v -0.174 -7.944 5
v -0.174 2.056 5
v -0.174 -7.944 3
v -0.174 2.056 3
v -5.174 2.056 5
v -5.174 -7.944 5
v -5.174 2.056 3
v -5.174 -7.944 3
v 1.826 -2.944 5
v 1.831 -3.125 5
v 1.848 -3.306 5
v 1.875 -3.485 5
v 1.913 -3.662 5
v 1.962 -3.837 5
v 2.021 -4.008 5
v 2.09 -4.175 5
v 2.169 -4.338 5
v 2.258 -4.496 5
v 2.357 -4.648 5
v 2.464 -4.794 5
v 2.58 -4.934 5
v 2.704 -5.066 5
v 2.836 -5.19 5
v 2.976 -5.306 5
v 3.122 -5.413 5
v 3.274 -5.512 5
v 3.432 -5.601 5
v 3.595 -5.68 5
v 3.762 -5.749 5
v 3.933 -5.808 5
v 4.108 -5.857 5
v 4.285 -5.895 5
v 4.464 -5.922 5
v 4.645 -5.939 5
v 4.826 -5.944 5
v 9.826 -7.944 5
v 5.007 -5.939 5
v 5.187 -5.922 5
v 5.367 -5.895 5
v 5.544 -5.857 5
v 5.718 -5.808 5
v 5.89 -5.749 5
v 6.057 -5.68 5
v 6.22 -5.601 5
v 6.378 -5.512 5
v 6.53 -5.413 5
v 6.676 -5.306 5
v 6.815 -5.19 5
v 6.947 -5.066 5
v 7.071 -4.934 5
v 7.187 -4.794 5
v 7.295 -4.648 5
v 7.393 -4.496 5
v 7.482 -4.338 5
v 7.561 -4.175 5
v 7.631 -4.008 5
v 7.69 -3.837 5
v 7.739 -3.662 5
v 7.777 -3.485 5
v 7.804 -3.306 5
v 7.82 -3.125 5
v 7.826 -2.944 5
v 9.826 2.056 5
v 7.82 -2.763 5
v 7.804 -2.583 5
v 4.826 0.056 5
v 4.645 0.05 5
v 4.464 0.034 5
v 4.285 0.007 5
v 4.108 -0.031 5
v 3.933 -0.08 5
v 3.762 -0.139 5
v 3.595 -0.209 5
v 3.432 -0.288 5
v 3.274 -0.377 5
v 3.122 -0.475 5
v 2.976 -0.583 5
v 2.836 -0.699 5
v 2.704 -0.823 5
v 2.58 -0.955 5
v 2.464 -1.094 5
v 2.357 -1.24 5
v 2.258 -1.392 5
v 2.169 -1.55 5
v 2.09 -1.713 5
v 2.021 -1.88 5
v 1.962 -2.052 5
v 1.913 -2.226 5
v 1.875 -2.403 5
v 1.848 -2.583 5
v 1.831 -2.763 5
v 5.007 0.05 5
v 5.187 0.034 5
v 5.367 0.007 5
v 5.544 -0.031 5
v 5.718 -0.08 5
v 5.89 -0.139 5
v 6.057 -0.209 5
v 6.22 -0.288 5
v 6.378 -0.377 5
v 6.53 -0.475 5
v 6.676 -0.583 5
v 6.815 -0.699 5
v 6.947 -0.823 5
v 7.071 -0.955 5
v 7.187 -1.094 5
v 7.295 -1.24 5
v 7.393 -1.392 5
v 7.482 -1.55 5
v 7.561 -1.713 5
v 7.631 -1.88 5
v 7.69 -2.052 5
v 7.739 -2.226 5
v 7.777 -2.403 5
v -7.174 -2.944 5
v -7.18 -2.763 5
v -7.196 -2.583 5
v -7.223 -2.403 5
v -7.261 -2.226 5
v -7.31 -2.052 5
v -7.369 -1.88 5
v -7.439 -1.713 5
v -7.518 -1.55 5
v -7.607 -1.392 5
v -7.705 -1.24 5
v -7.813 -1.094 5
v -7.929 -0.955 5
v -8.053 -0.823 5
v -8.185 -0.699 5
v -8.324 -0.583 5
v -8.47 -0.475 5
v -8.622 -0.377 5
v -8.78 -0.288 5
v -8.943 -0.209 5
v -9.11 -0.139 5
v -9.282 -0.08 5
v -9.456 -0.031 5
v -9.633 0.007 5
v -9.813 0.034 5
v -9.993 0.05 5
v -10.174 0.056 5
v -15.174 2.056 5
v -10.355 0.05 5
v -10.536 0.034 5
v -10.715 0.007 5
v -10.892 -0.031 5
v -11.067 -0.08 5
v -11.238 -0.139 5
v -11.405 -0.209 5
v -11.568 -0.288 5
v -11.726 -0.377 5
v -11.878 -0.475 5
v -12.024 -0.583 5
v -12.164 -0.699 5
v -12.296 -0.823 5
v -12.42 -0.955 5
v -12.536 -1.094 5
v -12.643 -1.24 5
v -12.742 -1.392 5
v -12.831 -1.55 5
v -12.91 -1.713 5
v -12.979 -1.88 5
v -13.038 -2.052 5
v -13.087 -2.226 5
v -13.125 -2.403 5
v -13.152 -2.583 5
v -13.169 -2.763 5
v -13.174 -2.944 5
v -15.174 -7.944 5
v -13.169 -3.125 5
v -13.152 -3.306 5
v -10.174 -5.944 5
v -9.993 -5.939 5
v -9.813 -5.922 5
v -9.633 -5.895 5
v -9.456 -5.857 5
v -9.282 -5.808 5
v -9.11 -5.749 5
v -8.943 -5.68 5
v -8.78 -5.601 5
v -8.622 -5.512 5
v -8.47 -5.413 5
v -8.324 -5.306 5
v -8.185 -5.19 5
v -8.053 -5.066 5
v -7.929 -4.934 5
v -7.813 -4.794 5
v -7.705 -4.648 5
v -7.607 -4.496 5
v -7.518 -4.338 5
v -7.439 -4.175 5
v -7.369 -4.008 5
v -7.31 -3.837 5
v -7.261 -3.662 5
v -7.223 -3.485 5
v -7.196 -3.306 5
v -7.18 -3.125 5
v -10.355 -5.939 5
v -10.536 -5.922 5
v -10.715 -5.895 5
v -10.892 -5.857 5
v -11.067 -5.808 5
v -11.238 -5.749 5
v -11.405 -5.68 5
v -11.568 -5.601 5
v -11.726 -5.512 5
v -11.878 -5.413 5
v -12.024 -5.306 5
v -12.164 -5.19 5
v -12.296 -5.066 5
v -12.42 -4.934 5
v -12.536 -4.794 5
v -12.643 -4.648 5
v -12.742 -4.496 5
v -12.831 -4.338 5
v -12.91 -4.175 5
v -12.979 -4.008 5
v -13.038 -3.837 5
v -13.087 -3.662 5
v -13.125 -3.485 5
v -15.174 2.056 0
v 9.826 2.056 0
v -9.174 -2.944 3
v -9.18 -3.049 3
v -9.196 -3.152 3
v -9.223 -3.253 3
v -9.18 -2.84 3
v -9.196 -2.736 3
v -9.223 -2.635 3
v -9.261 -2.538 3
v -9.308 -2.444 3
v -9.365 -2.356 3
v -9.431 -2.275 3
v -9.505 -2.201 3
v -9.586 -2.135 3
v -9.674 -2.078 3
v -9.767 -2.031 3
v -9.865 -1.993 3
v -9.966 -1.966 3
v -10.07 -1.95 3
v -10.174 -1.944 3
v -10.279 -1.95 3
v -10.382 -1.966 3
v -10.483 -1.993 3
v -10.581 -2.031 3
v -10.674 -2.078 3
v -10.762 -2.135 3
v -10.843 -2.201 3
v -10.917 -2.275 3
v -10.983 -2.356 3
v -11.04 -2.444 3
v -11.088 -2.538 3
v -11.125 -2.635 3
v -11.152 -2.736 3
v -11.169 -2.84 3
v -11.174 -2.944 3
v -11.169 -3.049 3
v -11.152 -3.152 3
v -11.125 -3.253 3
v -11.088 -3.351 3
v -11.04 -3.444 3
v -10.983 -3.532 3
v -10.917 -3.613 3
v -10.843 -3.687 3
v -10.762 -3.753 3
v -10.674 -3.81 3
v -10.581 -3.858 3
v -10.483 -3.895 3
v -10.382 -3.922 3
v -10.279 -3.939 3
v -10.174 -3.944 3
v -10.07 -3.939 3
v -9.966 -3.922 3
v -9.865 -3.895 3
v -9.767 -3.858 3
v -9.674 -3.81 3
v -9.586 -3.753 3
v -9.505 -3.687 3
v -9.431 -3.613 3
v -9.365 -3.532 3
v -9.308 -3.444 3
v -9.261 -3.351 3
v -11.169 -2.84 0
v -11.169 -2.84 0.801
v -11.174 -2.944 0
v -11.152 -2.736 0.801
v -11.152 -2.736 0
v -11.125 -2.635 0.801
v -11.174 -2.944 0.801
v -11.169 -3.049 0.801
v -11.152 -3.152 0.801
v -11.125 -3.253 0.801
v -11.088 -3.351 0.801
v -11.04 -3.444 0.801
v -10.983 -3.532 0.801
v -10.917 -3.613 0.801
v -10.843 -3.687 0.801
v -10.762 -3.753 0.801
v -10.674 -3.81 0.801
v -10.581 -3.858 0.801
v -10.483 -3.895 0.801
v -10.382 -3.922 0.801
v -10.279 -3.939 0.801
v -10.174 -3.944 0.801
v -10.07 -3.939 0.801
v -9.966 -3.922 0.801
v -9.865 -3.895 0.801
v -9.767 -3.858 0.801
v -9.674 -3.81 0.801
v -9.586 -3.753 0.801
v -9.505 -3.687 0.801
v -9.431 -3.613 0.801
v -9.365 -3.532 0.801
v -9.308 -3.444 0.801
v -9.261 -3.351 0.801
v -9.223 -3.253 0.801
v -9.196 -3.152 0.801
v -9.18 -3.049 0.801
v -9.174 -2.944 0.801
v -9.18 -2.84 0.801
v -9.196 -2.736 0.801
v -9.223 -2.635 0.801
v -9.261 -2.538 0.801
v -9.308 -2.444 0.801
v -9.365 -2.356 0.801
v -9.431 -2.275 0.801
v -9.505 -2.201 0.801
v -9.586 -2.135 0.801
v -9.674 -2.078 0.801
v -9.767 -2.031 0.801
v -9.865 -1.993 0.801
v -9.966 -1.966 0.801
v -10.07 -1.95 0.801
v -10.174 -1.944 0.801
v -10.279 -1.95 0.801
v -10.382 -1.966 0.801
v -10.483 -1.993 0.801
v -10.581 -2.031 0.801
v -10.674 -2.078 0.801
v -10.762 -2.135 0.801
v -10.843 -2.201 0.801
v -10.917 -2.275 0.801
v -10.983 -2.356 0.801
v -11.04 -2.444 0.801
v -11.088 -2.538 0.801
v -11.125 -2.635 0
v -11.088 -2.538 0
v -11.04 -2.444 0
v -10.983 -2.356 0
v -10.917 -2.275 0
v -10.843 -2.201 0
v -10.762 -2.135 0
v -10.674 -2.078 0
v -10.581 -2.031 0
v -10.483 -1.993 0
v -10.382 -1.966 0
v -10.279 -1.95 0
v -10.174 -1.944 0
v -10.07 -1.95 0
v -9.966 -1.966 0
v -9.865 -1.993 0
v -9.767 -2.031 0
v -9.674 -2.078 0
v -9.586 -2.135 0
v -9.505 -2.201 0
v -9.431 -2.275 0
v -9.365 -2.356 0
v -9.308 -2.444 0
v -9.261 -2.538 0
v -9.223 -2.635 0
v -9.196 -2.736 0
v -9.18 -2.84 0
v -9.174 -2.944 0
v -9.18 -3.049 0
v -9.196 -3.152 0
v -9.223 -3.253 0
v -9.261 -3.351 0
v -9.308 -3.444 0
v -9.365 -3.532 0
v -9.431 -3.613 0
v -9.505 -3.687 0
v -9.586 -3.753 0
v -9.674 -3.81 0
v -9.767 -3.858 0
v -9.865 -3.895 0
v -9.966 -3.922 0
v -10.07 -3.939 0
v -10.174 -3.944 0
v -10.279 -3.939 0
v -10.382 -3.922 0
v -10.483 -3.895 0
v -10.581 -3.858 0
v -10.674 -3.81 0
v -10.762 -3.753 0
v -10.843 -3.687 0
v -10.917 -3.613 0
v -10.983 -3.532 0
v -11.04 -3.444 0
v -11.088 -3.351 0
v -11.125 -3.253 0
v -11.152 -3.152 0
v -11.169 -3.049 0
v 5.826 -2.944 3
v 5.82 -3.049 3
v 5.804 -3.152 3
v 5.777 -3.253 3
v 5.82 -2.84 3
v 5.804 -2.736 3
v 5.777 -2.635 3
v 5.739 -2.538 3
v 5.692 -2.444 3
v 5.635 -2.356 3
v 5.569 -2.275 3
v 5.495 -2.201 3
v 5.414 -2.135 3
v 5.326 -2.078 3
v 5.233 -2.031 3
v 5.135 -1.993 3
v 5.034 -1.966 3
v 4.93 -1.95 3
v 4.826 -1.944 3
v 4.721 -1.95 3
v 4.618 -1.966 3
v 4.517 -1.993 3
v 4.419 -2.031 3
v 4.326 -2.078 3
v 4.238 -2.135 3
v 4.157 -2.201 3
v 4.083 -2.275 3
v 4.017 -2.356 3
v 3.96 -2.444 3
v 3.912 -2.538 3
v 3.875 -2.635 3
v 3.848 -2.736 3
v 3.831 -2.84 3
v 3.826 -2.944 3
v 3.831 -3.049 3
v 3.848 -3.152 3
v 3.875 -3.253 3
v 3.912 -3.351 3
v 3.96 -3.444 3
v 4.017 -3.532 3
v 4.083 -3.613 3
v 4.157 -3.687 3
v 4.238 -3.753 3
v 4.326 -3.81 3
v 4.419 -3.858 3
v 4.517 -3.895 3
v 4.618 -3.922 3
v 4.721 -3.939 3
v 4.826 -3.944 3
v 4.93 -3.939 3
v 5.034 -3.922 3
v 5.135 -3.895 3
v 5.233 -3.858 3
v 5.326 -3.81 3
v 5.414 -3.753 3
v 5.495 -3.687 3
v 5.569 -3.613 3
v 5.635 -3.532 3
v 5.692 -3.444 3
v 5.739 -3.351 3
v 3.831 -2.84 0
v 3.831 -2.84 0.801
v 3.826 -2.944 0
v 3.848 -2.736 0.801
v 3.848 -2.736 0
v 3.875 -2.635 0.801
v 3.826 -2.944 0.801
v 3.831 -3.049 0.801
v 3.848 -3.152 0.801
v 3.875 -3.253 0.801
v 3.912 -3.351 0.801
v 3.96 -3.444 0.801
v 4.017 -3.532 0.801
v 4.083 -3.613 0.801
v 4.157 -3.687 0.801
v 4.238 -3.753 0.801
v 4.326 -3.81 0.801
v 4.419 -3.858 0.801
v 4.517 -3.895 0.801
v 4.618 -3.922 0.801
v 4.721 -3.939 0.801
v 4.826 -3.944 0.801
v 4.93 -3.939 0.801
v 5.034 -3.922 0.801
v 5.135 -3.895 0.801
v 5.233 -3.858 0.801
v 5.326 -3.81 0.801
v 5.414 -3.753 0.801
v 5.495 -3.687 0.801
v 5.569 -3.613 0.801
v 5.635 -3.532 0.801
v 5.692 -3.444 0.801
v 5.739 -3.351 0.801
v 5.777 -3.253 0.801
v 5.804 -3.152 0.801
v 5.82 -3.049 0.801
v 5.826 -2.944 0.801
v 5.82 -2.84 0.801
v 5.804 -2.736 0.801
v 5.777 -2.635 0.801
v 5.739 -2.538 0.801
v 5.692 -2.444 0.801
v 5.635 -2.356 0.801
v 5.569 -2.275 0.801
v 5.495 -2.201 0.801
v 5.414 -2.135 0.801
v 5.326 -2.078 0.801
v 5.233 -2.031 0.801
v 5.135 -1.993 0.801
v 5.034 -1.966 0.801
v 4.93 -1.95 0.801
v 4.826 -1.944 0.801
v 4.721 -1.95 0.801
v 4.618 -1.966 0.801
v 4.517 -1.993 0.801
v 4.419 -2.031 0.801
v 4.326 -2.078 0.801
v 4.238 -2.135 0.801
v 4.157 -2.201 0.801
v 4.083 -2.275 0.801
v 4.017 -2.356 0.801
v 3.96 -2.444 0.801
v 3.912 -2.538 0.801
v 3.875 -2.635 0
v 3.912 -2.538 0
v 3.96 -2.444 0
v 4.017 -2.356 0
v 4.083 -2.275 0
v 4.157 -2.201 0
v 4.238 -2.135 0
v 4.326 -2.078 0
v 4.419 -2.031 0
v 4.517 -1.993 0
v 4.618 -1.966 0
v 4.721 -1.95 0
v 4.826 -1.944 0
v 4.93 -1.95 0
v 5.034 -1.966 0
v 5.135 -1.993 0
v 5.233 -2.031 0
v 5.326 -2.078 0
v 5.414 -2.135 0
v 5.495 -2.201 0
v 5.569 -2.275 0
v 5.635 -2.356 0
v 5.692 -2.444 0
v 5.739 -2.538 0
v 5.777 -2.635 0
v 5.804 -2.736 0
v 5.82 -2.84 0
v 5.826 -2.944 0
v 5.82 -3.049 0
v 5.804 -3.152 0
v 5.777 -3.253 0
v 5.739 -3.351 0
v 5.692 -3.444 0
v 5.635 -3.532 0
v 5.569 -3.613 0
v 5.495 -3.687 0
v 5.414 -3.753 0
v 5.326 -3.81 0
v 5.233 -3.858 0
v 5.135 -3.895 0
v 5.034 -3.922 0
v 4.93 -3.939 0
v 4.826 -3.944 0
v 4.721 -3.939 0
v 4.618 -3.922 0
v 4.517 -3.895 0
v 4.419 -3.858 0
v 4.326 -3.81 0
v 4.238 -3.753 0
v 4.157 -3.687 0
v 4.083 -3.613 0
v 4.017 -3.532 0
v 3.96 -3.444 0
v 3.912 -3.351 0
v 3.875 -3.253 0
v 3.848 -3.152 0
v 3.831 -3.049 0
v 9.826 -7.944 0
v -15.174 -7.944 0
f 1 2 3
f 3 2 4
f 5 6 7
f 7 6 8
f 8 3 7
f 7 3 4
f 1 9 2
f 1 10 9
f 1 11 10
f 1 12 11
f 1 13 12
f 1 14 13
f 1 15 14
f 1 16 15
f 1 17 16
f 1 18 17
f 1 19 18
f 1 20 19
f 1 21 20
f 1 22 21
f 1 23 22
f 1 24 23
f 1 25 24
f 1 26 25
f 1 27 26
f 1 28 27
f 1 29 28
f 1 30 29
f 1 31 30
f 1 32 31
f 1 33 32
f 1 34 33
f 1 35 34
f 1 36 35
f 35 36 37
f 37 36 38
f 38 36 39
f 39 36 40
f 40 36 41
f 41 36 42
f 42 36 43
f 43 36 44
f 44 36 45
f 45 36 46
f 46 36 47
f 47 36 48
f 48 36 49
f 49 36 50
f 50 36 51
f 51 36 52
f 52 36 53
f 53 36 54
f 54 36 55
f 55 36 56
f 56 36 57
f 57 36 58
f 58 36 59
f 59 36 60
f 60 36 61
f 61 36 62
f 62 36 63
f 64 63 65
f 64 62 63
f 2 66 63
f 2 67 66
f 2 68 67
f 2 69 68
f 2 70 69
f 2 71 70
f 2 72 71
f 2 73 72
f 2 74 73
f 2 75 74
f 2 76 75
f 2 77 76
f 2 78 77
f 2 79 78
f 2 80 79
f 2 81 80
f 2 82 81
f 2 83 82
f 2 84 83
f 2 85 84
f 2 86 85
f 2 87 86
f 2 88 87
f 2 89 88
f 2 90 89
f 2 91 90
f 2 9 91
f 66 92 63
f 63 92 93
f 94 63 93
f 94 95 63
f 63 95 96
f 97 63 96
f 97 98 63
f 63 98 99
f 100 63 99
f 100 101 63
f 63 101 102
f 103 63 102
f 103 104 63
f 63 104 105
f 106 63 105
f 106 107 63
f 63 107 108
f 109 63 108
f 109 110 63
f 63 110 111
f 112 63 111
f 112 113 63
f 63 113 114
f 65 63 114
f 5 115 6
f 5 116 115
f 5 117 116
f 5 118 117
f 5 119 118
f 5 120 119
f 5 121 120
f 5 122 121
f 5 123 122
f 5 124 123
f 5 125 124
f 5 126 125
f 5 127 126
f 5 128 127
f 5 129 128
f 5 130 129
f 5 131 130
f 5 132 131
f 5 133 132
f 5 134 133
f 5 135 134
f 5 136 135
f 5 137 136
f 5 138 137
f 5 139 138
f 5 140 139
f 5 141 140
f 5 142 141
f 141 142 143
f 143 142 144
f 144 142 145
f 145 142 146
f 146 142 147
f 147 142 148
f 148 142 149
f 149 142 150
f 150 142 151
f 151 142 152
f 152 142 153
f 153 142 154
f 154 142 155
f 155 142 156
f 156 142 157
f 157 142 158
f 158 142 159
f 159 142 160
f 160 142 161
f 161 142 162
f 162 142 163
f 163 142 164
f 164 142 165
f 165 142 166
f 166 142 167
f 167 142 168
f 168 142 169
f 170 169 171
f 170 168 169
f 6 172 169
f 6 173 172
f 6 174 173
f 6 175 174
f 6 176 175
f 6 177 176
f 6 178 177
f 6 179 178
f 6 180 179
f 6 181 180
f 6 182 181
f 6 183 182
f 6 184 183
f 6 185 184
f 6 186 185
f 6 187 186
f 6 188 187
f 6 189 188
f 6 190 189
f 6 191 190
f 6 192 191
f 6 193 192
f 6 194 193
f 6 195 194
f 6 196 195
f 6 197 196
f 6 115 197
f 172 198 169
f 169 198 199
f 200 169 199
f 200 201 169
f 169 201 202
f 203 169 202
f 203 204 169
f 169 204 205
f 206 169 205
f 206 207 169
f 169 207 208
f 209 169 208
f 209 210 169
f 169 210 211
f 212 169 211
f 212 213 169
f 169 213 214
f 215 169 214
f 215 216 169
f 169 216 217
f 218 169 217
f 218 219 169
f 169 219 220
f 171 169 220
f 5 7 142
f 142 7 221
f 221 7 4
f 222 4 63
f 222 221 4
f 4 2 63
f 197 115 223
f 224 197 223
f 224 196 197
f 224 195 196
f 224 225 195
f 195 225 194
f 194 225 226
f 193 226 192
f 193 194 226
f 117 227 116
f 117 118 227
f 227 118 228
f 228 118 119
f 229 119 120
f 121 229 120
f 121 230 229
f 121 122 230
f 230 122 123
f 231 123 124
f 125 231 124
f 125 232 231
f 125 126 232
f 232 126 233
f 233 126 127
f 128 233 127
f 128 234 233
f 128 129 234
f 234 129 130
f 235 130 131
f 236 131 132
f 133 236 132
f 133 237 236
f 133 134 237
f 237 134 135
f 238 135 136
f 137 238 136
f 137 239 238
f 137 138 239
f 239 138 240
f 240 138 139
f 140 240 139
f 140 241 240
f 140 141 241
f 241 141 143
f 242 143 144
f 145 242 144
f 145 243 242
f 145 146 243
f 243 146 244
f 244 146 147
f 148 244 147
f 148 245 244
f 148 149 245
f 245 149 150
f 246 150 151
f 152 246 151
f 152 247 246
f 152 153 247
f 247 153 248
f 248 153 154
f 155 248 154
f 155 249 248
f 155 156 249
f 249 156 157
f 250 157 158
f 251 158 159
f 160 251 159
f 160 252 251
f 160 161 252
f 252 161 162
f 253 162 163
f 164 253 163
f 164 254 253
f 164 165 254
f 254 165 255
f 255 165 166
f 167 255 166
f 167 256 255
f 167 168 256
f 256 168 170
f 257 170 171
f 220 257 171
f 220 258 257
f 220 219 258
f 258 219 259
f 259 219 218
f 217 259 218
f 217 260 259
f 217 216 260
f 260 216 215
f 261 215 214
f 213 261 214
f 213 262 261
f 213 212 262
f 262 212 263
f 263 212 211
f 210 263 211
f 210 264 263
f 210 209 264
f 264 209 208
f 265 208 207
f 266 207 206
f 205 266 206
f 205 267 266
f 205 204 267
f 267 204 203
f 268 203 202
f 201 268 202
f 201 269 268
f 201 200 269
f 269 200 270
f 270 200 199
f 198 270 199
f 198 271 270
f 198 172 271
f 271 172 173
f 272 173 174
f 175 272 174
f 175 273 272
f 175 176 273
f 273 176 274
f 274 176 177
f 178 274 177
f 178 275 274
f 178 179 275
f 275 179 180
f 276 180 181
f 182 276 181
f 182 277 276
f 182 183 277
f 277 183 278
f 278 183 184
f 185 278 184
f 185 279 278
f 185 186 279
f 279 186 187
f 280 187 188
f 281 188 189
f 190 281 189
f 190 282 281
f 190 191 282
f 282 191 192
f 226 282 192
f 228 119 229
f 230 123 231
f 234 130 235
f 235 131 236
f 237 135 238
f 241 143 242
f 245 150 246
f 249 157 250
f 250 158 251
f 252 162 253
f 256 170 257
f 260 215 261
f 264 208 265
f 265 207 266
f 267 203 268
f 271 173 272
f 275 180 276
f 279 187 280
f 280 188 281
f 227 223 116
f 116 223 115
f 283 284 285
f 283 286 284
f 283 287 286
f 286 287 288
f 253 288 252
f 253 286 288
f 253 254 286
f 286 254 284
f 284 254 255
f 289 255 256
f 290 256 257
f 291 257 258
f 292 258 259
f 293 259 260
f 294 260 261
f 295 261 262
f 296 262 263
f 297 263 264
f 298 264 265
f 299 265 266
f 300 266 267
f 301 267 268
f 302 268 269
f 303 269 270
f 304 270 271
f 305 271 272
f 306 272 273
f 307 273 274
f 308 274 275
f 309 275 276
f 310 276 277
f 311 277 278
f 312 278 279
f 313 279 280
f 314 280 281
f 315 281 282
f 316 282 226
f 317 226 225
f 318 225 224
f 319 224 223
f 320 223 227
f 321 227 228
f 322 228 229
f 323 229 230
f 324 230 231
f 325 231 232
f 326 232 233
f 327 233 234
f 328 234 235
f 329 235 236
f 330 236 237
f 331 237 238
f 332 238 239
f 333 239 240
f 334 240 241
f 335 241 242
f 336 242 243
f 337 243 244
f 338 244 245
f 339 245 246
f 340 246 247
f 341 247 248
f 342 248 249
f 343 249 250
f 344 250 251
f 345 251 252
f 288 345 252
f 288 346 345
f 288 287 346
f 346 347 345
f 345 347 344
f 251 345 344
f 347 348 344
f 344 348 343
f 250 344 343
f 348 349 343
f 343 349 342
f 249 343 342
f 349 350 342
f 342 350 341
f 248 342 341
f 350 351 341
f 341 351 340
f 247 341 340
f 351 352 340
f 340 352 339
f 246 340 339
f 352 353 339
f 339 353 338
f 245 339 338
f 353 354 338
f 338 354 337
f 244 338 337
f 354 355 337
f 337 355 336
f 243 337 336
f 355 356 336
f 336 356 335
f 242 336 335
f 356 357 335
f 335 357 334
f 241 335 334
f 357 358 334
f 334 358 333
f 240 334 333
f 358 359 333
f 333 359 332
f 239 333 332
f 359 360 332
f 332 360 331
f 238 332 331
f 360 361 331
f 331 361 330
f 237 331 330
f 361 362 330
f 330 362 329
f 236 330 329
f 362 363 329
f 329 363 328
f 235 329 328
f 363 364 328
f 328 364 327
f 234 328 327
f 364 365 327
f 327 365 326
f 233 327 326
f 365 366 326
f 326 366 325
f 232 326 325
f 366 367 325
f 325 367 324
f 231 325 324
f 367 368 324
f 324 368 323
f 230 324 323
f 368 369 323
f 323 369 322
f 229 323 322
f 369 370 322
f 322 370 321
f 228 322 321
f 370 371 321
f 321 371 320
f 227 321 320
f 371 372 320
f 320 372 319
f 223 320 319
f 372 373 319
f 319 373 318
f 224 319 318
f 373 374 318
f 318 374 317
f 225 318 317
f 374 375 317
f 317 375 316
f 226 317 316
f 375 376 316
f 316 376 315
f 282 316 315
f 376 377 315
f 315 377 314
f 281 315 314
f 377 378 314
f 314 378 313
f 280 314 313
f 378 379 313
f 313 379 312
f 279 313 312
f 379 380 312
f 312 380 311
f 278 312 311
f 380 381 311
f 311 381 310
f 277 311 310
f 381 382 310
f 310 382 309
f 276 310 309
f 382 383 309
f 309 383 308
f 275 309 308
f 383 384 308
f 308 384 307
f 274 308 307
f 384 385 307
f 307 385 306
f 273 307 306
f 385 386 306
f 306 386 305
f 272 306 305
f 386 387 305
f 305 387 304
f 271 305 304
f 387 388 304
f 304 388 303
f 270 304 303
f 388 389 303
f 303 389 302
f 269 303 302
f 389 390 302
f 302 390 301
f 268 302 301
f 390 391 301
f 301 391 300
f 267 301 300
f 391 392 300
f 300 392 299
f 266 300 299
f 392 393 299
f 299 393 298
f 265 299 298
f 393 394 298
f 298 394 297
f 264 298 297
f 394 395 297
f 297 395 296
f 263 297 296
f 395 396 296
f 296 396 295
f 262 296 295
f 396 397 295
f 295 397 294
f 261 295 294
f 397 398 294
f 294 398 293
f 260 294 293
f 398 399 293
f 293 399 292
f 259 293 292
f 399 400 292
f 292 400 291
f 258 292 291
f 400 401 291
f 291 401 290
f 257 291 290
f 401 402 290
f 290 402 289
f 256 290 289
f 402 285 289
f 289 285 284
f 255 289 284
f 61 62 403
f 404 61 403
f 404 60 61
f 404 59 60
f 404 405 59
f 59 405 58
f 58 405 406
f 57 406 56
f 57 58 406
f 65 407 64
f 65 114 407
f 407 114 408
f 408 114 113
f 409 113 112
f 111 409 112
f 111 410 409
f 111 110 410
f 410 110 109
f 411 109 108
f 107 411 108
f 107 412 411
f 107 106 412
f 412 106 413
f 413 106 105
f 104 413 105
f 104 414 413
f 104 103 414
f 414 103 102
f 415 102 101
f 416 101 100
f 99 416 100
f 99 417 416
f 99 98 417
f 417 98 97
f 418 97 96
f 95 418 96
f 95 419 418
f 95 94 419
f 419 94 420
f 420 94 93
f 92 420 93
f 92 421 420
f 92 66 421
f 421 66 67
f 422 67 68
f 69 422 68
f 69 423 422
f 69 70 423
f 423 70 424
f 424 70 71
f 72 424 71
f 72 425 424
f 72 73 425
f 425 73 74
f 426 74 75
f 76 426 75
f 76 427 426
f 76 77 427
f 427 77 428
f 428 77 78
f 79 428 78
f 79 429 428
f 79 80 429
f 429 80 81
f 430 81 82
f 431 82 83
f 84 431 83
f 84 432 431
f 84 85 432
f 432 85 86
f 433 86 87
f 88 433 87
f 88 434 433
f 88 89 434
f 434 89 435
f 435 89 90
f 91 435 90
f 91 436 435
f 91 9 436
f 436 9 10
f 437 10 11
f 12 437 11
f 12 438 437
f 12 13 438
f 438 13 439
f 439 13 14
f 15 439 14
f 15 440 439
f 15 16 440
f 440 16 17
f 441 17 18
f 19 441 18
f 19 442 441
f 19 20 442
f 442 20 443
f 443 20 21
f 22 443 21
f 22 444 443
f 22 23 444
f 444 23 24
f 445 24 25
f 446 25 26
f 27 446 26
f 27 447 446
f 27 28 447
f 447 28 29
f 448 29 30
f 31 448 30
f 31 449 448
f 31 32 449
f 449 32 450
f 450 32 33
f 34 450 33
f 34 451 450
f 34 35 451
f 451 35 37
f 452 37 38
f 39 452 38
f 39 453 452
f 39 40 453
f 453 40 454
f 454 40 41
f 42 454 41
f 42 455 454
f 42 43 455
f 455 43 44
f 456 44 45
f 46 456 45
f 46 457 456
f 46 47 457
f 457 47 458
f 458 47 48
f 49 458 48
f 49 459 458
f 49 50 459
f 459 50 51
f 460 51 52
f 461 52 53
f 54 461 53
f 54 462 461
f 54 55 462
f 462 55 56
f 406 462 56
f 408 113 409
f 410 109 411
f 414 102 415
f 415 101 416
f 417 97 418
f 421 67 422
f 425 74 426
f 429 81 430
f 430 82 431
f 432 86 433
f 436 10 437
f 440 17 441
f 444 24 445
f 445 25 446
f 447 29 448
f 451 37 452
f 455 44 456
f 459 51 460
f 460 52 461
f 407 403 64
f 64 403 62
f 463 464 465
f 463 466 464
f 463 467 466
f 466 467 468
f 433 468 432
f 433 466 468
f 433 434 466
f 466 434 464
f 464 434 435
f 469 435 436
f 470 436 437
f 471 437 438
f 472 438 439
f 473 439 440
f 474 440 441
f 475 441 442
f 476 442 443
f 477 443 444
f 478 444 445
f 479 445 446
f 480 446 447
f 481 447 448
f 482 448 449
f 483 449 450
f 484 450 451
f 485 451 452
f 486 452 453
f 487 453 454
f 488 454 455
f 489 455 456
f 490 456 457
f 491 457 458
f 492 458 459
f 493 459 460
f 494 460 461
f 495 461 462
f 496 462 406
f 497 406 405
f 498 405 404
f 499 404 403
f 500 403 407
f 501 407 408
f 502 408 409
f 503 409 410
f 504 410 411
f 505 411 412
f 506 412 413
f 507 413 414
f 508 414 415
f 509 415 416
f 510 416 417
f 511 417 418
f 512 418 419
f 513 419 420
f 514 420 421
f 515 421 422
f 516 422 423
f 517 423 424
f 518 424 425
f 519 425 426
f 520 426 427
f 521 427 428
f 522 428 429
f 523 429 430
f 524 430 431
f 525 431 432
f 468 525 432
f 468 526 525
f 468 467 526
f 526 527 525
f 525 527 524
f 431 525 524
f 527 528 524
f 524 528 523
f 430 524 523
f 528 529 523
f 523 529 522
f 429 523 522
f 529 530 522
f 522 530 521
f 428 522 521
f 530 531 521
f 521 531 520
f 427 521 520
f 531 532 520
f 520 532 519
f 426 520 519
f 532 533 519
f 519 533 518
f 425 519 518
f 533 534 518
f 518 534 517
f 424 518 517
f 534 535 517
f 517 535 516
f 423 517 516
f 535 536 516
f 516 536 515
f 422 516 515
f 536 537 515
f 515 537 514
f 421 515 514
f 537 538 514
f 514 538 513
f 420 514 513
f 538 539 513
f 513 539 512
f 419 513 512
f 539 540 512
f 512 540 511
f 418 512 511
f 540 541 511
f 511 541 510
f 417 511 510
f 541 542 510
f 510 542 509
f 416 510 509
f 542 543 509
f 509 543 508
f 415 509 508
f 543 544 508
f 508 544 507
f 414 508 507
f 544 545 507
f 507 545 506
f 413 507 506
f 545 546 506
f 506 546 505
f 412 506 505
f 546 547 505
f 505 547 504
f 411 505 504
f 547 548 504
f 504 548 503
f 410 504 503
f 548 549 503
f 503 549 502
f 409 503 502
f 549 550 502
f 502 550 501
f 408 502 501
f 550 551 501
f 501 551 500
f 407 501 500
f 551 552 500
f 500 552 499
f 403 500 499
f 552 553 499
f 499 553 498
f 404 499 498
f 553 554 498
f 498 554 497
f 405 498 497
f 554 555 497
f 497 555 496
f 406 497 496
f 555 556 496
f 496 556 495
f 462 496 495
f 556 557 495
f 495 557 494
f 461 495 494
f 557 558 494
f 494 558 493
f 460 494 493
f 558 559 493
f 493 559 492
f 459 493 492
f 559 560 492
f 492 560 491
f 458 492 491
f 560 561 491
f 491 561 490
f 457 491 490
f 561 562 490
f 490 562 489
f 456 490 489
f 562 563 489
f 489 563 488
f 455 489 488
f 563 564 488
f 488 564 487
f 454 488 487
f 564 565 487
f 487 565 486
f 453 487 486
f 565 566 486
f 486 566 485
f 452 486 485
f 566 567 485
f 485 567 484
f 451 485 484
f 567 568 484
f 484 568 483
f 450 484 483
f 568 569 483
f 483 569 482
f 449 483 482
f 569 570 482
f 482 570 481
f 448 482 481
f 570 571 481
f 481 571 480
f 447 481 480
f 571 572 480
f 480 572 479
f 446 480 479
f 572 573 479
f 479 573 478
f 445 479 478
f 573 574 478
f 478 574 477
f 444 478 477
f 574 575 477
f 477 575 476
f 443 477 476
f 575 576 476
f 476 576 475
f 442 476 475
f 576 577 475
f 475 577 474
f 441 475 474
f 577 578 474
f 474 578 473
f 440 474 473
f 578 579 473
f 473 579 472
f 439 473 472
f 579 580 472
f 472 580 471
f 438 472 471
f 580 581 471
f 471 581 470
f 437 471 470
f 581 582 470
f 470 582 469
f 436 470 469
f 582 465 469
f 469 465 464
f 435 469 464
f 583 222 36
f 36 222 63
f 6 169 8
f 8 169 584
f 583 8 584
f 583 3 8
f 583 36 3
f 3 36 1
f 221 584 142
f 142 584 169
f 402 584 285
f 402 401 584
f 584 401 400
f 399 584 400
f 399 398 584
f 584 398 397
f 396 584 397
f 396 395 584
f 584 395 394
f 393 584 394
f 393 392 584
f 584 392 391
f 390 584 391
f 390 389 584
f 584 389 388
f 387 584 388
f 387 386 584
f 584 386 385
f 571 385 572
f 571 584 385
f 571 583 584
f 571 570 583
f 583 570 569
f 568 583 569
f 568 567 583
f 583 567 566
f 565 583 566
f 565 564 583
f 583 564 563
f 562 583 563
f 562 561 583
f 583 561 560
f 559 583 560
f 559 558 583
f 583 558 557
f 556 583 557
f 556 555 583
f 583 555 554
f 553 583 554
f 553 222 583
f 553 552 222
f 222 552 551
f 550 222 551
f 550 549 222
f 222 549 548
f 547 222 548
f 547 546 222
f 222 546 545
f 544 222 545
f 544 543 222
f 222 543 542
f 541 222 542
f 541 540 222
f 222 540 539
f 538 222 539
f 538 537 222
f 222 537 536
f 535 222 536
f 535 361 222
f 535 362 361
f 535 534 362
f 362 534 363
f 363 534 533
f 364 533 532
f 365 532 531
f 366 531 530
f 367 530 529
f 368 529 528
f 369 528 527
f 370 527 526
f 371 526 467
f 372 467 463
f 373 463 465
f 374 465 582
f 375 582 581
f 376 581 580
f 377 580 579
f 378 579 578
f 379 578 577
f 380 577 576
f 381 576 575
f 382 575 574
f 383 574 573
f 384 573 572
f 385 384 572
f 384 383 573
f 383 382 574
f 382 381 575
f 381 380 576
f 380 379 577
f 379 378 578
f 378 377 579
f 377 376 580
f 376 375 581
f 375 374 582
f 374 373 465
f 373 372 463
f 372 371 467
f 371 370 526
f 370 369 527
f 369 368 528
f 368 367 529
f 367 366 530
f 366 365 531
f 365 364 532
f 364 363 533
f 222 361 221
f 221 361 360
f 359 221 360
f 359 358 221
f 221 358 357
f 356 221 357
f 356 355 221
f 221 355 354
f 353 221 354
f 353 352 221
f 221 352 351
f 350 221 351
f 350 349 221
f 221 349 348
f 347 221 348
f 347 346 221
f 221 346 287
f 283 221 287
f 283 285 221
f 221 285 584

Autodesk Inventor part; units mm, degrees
ref_plane "YZ Plane" through (0, 0, 0) normal (1, 0, 0) x (0, 1, 0)
ref_plane "XZ Plane" through (0, 0, 0) normal (0, 1, 0) x (-1, 0, 0)
ref_plane "XY Plane" through (0, 0, 0) normal (0, 0, 1) x (1, 0, 0)
sketch "Sketch1" plane through (0, 0, 0) normal (0, 0, 1) x (1, 0, 0)
  line L0 (-15.1742, 2.0557) -> (9.8258, 2.0557)
  line L1 (9.8258, 2.0557) -> (9.8258, -7.9443)
  line L2 (9.8258, -7.9443) -> (-15.1742, -7.9443)
  line L3 (-15.1742, -7.9443) -> (-15.1742, 2.0557)
  point P0 (0, 0)
  dimension "d0" = 25
  dimension "d1" = 10
extrude "Extrusion1" add sketch "Sketch1" along normal blind 5
sketch "Sketch2" plane through (0, 0, 5) normal (0, 0, 1) x (1, 0, 0)
  circle A0 centre (-10.1742, -2.9443) radius 1
  line L0 (-15.1742, 2.0557) -> (-15.1742, -7.9443) projected
  line L1 (9.8258, 2.0557) -> (-15.1742, 2.0557) projected
  line L2 (-2.6742, 2.0557) -> (-2.6742, -2.9443)
  circle A1 centre (4.8258, -2.9443) radius 1
  point P0 (0, 0)
  dimension "d4" = 2
  dimension "d5" = 5
  dimension "d6" = 5
hole "Hole1" at (-10.1742, -2.9443, 5) at (4.8258, -2.9443, 5) direction (0, 0, -1) diameter 2 end through all countersink diameter 6 countersink angle 90
sketch "Sketch3" plane through (0, 0, 5) normal (0, 0, 1) x (1, 0, 0)
  line L0 (9.8258, 2.0557) -> (-15.1742, 2.0557) projected
  line L1 (-15.1742, -7.9443) -> (9.8258, -7.9443) projected
  line L2 (-5.1742, 2.0557) -> (-0.1742, 2.0557)
  line L3 (-0.1742, 2.0557) -> (-0.1742, -7.9443)
  line L4 (-0.1742, -7.9443) -> (-5.1742, -7.9443)
  line L5 (-5.1742, -7.9443) -> (-5.1742, 2.0557)
  line L6 (-15.1742, 2.0557) -> (-15.1742, -7.9443) projected
  line L7 (9.8258, -7.9443) -> (9.8258, 2.0557) projected
  point P0 (0, 0)
  dimension "d14" = 10
  dimension "d15" = 10
extrude "Extrusion2" cut sketch "Sketch3" against normal blind 2 contours L3 L1 L5 L0
properties part number "CameraArmMount"
